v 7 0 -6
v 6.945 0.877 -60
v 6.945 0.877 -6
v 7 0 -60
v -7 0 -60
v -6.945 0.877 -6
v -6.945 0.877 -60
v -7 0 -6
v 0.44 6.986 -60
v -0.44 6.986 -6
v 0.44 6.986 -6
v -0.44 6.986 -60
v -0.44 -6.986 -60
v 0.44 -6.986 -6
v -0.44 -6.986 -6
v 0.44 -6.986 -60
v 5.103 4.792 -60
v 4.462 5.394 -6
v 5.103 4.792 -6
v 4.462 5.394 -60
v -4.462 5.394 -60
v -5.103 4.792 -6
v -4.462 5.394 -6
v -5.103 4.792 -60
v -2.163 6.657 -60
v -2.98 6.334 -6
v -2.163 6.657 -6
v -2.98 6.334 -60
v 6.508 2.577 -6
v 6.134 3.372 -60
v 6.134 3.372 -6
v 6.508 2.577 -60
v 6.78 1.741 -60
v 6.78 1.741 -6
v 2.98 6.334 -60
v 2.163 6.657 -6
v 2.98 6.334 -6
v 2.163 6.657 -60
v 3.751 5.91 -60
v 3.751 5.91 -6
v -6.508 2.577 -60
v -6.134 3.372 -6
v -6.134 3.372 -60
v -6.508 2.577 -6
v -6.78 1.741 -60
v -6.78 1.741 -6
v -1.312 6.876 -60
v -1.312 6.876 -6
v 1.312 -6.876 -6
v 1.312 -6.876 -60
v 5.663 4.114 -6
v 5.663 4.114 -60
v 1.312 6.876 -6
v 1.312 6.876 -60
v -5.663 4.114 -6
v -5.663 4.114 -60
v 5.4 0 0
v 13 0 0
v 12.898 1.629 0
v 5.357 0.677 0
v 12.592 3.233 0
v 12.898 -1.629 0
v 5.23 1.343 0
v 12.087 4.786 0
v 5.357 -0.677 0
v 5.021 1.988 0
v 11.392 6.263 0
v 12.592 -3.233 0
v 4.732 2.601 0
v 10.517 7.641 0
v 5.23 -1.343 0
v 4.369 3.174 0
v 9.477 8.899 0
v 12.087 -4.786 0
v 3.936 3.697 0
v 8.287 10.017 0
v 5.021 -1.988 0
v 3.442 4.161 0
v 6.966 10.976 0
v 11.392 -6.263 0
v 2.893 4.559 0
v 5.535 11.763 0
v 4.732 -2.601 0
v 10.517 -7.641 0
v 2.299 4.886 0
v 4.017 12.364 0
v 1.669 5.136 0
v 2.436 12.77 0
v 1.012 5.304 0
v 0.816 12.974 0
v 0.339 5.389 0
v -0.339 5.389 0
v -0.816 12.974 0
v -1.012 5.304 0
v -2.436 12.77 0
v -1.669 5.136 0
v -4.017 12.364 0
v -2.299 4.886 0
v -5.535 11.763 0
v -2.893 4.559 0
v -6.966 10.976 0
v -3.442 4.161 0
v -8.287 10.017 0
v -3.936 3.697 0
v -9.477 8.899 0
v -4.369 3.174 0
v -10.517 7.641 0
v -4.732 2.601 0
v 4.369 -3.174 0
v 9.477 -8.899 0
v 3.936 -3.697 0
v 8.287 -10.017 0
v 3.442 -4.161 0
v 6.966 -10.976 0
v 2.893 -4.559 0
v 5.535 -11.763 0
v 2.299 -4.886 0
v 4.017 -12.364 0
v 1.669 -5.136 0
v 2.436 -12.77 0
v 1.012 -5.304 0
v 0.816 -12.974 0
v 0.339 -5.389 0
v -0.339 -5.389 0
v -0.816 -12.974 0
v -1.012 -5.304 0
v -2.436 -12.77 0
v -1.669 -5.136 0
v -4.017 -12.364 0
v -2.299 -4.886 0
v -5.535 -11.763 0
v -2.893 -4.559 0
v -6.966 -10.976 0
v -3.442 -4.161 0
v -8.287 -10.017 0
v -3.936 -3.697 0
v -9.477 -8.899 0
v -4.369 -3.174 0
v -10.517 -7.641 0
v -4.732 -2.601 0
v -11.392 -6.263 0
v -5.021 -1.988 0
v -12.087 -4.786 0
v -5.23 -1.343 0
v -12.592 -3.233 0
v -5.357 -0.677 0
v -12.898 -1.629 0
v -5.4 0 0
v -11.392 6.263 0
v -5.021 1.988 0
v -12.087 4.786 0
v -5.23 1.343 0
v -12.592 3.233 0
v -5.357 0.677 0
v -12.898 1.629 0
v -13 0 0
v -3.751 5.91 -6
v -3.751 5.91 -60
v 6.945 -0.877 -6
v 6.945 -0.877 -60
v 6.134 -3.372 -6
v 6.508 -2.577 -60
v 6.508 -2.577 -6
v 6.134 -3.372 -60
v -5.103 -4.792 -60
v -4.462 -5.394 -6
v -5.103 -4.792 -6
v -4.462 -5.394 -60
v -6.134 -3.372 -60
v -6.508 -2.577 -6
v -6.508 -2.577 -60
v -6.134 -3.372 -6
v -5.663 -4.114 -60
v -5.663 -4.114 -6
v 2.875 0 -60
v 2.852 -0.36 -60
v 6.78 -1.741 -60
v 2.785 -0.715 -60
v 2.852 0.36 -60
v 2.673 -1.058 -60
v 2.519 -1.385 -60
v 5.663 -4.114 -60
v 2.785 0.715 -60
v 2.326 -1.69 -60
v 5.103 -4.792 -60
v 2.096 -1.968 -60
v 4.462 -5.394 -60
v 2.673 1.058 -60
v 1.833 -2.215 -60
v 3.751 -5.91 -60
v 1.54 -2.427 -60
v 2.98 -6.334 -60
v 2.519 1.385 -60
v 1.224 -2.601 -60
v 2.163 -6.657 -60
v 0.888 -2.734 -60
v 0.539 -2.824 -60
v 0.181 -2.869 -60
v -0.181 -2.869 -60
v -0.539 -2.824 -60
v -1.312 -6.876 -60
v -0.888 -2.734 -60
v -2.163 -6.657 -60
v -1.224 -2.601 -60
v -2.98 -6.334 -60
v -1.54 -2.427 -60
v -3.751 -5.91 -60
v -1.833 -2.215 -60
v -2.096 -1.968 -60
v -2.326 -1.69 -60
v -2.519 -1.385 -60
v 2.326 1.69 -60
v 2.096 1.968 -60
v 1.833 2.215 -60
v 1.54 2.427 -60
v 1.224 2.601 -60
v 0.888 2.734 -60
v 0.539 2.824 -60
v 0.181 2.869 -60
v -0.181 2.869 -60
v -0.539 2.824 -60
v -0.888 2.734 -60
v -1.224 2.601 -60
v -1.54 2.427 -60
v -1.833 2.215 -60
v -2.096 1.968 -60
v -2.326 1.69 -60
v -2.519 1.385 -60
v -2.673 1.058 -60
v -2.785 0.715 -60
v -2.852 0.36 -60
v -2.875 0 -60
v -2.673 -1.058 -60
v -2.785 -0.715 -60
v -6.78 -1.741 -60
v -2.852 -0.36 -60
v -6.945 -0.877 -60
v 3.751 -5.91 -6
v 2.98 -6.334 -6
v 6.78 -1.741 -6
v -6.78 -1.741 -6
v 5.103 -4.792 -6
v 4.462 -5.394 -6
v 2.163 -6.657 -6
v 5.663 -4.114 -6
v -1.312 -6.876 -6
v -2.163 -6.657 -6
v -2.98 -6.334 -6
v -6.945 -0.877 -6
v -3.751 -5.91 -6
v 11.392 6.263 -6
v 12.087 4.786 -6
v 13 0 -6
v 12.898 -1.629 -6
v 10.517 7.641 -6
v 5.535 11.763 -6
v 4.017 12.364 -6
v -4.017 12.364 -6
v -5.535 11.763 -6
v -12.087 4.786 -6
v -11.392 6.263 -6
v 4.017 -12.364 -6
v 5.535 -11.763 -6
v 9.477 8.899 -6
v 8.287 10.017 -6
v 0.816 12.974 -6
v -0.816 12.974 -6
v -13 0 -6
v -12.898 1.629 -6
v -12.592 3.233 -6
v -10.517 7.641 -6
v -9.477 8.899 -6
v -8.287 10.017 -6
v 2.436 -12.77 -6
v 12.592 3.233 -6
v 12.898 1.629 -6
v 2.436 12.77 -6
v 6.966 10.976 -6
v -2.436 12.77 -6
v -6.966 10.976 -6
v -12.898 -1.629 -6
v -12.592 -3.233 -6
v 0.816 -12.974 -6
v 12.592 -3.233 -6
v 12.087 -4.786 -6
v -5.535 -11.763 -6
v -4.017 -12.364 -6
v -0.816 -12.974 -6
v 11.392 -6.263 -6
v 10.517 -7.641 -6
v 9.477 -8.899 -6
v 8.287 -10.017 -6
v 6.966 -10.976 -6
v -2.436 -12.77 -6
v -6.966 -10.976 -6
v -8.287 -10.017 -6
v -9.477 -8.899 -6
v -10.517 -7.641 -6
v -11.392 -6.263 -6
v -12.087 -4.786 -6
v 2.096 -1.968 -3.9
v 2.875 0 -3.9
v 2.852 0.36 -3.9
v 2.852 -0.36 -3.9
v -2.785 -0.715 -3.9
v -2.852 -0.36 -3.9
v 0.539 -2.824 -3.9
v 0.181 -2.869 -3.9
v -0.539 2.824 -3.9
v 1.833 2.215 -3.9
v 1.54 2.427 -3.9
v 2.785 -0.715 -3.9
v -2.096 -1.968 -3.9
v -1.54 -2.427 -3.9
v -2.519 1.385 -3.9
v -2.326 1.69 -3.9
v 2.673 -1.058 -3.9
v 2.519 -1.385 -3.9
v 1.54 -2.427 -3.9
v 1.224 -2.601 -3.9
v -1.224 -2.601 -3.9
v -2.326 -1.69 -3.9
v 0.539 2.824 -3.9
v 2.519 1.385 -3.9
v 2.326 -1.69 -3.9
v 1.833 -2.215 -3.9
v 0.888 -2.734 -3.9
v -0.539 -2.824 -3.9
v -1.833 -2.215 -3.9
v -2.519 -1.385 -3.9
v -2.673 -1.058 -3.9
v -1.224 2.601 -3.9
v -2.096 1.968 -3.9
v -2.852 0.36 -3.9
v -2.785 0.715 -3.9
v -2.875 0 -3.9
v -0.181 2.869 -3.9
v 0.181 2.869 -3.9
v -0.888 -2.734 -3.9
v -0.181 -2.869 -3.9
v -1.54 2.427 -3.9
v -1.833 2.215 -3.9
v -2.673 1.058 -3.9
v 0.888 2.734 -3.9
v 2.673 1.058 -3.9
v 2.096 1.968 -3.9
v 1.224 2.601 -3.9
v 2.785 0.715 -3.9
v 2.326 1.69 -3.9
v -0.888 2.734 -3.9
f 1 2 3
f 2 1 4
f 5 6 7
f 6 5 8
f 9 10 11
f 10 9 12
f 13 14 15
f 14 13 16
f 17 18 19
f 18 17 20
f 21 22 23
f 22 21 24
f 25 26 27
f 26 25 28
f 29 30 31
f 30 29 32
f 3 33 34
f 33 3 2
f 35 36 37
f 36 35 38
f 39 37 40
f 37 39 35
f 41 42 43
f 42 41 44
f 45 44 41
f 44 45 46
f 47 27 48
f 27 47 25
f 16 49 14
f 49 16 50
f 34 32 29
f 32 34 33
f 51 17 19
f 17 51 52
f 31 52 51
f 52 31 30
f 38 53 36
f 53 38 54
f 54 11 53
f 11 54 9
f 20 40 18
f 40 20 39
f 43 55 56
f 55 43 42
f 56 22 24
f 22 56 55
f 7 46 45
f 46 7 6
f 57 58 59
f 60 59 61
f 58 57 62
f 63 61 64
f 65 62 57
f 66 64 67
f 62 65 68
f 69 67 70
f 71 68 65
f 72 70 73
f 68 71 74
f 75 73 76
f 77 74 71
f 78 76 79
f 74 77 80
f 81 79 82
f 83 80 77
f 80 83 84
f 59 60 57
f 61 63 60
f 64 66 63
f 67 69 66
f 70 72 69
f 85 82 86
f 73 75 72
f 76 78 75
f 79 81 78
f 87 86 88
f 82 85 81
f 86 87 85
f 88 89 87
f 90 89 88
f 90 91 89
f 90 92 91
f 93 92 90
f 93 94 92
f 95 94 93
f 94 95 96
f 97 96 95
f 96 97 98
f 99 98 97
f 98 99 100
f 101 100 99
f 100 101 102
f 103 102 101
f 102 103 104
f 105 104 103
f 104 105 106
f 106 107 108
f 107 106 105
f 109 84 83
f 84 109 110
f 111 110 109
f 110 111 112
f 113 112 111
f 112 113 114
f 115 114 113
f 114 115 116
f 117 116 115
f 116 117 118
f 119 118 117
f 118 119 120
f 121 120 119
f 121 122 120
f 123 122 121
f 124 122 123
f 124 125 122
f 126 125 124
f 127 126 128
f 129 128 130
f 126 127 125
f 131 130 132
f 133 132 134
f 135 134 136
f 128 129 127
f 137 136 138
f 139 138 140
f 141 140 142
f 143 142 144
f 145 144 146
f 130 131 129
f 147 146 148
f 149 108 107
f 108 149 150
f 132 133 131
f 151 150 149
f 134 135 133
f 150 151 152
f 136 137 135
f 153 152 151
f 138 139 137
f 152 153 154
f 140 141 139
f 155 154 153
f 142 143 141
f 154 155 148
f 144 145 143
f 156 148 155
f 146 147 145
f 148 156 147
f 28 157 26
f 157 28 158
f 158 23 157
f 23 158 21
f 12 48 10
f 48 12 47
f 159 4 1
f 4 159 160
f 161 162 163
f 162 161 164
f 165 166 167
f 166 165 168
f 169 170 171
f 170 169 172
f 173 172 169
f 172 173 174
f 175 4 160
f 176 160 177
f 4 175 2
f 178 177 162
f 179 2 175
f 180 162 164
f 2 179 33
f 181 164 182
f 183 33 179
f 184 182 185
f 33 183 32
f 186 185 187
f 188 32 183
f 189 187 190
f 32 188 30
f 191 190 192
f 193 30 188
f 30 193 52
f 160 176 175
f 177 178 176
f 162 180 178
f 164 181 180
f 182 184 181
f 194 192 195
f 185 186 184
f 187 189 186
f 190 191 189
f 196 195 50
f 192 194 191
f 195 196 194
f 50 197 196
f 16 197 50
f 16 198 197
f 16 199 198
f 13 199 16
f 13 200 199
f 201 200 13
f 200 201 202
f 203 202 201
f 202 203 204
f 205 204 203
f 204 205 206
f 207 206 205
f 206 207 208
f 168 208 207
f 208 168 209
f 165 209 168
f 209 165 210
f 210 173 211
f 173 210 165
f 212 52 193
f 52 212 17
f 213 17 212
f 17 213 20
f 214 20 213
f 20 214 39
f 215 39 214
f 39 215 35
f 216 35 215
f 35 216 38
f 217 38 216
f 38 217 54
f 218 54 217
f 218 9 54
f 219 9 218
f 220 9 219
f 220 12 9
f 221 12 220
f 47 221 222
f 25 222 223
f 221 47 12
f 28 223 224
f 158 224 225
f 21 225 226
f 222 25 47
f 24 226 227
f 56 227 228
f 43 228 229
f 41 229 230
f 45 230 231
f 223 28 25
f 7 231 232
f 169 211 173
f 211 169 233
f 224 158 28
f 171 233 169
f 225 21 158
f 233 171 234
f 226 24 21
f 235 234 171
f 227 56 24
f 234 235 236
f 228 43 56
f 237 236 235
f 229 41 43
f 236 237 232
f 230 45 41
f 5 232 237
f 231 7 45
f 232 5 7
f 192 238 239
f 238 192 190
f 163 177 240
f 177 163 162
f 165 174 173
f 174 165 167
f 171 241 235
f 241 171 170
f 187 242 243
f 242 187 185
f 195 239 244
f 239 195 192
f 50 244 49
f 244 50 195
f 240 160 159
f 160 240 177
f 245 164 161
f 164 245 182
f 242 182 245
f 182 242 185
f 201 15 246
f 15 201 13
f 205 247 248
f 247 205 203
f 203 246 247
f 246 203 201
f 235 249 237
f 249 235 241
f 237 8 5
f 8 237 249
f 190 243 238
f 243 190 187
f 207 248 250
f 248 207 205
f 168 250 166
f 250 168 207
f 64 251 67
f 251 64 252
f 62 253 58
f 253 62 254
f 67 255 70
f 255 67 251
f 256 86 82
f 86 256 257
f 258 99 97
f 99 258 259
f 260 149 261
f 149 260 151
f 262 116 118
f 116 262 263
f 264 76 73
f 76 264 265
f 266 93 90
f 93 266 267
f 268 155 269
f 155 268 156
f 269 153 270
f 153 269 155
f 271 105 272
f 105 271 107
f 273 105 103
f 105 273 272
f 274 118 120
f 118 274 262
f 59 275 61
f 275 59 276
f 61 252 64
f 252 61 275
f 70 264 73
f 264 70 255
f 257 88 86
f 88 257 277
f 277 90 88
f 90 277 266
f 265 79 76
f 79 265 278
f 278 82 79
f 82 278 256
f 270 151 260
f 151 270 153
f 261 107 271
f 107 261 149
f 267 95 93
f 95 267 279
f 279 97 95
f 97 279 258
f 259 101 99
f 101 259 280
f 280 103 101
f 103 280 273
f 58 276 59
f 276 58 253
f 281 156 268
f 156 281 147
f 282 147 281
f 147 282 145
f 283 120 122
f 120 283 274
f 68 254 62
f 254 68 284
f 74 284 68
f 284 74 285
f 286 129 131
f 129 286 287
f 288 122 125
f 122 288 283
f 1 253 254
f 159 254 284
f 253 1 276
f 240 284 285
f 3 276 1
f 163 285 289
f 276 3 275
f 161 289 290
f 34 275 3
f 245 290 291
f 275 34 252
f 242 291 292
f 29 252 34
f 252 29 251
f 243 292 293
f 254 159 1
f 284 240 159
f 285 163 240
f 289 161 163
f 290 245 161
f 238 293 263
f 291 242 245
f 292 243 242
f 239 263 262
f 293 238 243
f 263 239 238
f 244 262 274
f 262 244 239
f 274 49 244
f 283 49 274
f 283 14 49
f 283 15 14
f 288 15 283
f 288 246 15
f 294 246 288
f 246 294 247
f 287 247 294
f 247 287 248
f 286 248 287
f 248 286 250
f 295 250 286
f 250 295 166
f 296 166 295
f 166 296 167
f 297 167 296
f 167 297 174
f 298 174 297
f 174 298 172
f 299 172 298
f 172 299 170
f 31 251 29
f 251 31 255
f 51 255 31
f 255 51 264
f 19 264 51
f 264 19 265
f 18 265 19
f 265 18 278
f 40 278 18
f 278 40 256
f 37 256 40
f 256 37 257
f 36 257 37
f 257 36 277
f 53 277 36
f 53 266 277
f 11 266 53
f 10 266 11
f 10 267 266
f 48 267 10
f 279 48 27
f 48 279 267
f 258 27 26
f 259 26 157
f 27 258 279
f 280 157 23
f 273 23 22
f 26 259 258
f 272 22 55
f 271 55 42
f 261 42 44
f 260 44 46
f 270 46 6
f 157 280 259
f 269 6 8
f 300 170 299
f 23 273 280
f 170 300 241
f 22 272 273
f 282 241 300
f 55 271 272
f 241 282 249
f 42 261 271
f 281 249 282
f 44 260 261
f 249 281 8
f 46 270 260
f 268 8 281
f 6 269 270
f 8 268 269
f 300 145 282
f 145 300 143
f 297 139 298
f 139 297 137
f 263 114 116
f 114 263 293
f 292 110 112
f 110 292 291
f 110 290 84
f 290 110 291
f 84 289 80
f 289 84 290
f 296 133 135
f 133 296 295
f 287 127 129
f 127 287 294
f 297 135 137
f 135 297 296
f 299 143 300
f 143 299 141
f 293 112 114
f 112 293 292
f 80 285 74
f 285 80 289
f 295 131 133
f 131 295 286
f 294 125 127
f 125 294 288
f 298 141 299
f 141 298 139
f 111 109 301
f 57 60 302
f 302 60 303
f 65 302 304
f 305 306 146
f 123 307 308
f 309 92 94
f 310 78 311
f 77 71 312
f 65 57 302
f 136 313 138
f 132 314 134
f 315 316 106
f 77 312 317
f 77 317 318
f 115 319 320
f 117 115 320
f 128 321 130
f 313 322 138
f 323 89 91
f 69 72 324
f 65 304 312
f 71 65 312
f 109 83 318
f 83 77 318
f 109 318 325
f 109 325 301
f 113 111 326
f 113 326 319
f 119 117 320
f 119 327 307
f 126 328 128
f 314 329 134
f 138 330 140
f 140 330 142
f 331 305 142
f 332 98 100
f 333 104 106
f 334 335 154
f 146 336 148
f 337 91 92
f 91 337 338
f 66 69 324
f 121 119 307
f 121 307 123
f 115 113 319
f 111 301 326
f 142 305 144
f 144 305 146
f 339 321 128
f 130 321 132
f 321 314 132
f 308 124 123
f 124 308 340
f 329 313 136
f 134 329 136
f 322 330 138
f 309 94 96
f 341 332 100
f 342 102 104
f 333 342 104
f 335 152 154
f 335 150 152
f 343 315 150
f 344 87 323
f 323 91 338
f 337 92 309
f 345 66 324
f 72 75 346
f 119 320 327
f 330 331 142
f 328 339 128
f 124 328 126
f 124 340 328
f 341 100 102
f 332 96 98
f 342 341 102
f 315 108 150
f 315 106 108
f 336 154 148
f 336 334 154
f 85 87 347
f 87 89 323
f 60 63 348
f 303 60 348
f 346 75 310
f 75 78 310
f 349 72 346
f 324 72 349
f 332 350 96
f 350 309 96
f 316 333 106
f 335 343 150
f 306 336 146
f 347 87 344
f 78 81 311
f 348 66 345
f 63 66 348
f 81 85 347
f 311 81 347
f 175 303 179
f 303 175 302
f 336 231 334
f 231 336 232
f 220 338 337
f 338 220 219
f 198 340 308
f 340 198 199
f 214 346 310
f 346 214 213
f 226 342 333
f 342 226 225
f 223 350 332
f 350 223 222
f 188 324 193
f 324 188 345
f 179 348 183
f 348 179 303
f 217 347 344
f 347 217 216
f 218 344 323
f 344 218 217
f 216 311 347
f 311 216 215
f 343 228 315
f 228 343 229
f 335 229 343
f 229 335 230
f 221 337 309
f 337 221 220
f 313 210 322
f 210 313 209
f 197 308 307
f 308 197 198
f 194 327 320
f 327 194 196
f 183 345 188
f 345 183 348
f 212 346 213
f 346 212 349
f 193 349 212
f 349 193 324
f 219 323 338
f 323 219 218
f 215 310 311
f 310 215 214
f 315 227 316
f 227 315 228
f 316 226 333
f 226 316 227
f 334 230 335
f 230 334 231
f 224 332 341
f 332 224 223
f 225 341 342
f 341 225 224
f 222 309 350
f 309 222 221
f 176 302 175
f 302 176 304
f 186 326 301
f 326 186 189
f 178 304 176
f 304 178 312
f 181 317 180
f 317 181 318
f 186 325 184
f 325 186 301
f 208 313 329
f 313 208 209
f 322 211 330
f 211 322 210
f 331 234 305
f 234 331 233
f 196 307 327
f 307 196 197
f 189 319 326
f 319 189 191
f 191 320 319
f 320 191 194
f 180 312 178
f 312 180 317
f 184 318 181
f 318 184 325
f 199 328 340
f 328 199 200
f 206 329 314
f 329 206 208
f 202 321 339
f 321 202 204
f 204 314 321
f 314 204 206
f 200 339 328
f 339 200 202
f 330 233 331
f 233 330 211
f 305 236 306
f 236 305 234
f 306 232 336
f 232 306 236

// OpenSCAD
$fn = 50;


difference() {
	union() {
		translate(v = [0, 0, -60.0000000000]) {
			cylinder(h = 60, r = 7.0000000000);
		}
		translate(v = [0, 0, -6.0000000000]) {
			cylinder(h = 6, r = 13.0000000000);
		}
	}
	union() {
		translate(v = [0, 0, 0]) {
			rotate(a = [0, 0, 0]) {
				difference() {
					union() {
						#translate(v = [0, 0, -60.0000000000]) {
							cylinder(h = 60, r = 2.6000000000);
						}
						#translate(v = [0, 0, -3.9000000000]) {
							cylinder(h = 3.9000000000, r = 7.0000000000, r1 = 2.8750000000, r2 = 5.4000000000);
						}
						#translate(v = [0, 0, -60.0000000000]) {
							cylinder(h = 60, r = 2.8750000000);
						}
						#translate(v = [0, 0, -60.0000000000]) {
							cylinder(h = 60, r = 2.6000000000);
						}
					}
					union();
				}
			}
		}
	}
}
